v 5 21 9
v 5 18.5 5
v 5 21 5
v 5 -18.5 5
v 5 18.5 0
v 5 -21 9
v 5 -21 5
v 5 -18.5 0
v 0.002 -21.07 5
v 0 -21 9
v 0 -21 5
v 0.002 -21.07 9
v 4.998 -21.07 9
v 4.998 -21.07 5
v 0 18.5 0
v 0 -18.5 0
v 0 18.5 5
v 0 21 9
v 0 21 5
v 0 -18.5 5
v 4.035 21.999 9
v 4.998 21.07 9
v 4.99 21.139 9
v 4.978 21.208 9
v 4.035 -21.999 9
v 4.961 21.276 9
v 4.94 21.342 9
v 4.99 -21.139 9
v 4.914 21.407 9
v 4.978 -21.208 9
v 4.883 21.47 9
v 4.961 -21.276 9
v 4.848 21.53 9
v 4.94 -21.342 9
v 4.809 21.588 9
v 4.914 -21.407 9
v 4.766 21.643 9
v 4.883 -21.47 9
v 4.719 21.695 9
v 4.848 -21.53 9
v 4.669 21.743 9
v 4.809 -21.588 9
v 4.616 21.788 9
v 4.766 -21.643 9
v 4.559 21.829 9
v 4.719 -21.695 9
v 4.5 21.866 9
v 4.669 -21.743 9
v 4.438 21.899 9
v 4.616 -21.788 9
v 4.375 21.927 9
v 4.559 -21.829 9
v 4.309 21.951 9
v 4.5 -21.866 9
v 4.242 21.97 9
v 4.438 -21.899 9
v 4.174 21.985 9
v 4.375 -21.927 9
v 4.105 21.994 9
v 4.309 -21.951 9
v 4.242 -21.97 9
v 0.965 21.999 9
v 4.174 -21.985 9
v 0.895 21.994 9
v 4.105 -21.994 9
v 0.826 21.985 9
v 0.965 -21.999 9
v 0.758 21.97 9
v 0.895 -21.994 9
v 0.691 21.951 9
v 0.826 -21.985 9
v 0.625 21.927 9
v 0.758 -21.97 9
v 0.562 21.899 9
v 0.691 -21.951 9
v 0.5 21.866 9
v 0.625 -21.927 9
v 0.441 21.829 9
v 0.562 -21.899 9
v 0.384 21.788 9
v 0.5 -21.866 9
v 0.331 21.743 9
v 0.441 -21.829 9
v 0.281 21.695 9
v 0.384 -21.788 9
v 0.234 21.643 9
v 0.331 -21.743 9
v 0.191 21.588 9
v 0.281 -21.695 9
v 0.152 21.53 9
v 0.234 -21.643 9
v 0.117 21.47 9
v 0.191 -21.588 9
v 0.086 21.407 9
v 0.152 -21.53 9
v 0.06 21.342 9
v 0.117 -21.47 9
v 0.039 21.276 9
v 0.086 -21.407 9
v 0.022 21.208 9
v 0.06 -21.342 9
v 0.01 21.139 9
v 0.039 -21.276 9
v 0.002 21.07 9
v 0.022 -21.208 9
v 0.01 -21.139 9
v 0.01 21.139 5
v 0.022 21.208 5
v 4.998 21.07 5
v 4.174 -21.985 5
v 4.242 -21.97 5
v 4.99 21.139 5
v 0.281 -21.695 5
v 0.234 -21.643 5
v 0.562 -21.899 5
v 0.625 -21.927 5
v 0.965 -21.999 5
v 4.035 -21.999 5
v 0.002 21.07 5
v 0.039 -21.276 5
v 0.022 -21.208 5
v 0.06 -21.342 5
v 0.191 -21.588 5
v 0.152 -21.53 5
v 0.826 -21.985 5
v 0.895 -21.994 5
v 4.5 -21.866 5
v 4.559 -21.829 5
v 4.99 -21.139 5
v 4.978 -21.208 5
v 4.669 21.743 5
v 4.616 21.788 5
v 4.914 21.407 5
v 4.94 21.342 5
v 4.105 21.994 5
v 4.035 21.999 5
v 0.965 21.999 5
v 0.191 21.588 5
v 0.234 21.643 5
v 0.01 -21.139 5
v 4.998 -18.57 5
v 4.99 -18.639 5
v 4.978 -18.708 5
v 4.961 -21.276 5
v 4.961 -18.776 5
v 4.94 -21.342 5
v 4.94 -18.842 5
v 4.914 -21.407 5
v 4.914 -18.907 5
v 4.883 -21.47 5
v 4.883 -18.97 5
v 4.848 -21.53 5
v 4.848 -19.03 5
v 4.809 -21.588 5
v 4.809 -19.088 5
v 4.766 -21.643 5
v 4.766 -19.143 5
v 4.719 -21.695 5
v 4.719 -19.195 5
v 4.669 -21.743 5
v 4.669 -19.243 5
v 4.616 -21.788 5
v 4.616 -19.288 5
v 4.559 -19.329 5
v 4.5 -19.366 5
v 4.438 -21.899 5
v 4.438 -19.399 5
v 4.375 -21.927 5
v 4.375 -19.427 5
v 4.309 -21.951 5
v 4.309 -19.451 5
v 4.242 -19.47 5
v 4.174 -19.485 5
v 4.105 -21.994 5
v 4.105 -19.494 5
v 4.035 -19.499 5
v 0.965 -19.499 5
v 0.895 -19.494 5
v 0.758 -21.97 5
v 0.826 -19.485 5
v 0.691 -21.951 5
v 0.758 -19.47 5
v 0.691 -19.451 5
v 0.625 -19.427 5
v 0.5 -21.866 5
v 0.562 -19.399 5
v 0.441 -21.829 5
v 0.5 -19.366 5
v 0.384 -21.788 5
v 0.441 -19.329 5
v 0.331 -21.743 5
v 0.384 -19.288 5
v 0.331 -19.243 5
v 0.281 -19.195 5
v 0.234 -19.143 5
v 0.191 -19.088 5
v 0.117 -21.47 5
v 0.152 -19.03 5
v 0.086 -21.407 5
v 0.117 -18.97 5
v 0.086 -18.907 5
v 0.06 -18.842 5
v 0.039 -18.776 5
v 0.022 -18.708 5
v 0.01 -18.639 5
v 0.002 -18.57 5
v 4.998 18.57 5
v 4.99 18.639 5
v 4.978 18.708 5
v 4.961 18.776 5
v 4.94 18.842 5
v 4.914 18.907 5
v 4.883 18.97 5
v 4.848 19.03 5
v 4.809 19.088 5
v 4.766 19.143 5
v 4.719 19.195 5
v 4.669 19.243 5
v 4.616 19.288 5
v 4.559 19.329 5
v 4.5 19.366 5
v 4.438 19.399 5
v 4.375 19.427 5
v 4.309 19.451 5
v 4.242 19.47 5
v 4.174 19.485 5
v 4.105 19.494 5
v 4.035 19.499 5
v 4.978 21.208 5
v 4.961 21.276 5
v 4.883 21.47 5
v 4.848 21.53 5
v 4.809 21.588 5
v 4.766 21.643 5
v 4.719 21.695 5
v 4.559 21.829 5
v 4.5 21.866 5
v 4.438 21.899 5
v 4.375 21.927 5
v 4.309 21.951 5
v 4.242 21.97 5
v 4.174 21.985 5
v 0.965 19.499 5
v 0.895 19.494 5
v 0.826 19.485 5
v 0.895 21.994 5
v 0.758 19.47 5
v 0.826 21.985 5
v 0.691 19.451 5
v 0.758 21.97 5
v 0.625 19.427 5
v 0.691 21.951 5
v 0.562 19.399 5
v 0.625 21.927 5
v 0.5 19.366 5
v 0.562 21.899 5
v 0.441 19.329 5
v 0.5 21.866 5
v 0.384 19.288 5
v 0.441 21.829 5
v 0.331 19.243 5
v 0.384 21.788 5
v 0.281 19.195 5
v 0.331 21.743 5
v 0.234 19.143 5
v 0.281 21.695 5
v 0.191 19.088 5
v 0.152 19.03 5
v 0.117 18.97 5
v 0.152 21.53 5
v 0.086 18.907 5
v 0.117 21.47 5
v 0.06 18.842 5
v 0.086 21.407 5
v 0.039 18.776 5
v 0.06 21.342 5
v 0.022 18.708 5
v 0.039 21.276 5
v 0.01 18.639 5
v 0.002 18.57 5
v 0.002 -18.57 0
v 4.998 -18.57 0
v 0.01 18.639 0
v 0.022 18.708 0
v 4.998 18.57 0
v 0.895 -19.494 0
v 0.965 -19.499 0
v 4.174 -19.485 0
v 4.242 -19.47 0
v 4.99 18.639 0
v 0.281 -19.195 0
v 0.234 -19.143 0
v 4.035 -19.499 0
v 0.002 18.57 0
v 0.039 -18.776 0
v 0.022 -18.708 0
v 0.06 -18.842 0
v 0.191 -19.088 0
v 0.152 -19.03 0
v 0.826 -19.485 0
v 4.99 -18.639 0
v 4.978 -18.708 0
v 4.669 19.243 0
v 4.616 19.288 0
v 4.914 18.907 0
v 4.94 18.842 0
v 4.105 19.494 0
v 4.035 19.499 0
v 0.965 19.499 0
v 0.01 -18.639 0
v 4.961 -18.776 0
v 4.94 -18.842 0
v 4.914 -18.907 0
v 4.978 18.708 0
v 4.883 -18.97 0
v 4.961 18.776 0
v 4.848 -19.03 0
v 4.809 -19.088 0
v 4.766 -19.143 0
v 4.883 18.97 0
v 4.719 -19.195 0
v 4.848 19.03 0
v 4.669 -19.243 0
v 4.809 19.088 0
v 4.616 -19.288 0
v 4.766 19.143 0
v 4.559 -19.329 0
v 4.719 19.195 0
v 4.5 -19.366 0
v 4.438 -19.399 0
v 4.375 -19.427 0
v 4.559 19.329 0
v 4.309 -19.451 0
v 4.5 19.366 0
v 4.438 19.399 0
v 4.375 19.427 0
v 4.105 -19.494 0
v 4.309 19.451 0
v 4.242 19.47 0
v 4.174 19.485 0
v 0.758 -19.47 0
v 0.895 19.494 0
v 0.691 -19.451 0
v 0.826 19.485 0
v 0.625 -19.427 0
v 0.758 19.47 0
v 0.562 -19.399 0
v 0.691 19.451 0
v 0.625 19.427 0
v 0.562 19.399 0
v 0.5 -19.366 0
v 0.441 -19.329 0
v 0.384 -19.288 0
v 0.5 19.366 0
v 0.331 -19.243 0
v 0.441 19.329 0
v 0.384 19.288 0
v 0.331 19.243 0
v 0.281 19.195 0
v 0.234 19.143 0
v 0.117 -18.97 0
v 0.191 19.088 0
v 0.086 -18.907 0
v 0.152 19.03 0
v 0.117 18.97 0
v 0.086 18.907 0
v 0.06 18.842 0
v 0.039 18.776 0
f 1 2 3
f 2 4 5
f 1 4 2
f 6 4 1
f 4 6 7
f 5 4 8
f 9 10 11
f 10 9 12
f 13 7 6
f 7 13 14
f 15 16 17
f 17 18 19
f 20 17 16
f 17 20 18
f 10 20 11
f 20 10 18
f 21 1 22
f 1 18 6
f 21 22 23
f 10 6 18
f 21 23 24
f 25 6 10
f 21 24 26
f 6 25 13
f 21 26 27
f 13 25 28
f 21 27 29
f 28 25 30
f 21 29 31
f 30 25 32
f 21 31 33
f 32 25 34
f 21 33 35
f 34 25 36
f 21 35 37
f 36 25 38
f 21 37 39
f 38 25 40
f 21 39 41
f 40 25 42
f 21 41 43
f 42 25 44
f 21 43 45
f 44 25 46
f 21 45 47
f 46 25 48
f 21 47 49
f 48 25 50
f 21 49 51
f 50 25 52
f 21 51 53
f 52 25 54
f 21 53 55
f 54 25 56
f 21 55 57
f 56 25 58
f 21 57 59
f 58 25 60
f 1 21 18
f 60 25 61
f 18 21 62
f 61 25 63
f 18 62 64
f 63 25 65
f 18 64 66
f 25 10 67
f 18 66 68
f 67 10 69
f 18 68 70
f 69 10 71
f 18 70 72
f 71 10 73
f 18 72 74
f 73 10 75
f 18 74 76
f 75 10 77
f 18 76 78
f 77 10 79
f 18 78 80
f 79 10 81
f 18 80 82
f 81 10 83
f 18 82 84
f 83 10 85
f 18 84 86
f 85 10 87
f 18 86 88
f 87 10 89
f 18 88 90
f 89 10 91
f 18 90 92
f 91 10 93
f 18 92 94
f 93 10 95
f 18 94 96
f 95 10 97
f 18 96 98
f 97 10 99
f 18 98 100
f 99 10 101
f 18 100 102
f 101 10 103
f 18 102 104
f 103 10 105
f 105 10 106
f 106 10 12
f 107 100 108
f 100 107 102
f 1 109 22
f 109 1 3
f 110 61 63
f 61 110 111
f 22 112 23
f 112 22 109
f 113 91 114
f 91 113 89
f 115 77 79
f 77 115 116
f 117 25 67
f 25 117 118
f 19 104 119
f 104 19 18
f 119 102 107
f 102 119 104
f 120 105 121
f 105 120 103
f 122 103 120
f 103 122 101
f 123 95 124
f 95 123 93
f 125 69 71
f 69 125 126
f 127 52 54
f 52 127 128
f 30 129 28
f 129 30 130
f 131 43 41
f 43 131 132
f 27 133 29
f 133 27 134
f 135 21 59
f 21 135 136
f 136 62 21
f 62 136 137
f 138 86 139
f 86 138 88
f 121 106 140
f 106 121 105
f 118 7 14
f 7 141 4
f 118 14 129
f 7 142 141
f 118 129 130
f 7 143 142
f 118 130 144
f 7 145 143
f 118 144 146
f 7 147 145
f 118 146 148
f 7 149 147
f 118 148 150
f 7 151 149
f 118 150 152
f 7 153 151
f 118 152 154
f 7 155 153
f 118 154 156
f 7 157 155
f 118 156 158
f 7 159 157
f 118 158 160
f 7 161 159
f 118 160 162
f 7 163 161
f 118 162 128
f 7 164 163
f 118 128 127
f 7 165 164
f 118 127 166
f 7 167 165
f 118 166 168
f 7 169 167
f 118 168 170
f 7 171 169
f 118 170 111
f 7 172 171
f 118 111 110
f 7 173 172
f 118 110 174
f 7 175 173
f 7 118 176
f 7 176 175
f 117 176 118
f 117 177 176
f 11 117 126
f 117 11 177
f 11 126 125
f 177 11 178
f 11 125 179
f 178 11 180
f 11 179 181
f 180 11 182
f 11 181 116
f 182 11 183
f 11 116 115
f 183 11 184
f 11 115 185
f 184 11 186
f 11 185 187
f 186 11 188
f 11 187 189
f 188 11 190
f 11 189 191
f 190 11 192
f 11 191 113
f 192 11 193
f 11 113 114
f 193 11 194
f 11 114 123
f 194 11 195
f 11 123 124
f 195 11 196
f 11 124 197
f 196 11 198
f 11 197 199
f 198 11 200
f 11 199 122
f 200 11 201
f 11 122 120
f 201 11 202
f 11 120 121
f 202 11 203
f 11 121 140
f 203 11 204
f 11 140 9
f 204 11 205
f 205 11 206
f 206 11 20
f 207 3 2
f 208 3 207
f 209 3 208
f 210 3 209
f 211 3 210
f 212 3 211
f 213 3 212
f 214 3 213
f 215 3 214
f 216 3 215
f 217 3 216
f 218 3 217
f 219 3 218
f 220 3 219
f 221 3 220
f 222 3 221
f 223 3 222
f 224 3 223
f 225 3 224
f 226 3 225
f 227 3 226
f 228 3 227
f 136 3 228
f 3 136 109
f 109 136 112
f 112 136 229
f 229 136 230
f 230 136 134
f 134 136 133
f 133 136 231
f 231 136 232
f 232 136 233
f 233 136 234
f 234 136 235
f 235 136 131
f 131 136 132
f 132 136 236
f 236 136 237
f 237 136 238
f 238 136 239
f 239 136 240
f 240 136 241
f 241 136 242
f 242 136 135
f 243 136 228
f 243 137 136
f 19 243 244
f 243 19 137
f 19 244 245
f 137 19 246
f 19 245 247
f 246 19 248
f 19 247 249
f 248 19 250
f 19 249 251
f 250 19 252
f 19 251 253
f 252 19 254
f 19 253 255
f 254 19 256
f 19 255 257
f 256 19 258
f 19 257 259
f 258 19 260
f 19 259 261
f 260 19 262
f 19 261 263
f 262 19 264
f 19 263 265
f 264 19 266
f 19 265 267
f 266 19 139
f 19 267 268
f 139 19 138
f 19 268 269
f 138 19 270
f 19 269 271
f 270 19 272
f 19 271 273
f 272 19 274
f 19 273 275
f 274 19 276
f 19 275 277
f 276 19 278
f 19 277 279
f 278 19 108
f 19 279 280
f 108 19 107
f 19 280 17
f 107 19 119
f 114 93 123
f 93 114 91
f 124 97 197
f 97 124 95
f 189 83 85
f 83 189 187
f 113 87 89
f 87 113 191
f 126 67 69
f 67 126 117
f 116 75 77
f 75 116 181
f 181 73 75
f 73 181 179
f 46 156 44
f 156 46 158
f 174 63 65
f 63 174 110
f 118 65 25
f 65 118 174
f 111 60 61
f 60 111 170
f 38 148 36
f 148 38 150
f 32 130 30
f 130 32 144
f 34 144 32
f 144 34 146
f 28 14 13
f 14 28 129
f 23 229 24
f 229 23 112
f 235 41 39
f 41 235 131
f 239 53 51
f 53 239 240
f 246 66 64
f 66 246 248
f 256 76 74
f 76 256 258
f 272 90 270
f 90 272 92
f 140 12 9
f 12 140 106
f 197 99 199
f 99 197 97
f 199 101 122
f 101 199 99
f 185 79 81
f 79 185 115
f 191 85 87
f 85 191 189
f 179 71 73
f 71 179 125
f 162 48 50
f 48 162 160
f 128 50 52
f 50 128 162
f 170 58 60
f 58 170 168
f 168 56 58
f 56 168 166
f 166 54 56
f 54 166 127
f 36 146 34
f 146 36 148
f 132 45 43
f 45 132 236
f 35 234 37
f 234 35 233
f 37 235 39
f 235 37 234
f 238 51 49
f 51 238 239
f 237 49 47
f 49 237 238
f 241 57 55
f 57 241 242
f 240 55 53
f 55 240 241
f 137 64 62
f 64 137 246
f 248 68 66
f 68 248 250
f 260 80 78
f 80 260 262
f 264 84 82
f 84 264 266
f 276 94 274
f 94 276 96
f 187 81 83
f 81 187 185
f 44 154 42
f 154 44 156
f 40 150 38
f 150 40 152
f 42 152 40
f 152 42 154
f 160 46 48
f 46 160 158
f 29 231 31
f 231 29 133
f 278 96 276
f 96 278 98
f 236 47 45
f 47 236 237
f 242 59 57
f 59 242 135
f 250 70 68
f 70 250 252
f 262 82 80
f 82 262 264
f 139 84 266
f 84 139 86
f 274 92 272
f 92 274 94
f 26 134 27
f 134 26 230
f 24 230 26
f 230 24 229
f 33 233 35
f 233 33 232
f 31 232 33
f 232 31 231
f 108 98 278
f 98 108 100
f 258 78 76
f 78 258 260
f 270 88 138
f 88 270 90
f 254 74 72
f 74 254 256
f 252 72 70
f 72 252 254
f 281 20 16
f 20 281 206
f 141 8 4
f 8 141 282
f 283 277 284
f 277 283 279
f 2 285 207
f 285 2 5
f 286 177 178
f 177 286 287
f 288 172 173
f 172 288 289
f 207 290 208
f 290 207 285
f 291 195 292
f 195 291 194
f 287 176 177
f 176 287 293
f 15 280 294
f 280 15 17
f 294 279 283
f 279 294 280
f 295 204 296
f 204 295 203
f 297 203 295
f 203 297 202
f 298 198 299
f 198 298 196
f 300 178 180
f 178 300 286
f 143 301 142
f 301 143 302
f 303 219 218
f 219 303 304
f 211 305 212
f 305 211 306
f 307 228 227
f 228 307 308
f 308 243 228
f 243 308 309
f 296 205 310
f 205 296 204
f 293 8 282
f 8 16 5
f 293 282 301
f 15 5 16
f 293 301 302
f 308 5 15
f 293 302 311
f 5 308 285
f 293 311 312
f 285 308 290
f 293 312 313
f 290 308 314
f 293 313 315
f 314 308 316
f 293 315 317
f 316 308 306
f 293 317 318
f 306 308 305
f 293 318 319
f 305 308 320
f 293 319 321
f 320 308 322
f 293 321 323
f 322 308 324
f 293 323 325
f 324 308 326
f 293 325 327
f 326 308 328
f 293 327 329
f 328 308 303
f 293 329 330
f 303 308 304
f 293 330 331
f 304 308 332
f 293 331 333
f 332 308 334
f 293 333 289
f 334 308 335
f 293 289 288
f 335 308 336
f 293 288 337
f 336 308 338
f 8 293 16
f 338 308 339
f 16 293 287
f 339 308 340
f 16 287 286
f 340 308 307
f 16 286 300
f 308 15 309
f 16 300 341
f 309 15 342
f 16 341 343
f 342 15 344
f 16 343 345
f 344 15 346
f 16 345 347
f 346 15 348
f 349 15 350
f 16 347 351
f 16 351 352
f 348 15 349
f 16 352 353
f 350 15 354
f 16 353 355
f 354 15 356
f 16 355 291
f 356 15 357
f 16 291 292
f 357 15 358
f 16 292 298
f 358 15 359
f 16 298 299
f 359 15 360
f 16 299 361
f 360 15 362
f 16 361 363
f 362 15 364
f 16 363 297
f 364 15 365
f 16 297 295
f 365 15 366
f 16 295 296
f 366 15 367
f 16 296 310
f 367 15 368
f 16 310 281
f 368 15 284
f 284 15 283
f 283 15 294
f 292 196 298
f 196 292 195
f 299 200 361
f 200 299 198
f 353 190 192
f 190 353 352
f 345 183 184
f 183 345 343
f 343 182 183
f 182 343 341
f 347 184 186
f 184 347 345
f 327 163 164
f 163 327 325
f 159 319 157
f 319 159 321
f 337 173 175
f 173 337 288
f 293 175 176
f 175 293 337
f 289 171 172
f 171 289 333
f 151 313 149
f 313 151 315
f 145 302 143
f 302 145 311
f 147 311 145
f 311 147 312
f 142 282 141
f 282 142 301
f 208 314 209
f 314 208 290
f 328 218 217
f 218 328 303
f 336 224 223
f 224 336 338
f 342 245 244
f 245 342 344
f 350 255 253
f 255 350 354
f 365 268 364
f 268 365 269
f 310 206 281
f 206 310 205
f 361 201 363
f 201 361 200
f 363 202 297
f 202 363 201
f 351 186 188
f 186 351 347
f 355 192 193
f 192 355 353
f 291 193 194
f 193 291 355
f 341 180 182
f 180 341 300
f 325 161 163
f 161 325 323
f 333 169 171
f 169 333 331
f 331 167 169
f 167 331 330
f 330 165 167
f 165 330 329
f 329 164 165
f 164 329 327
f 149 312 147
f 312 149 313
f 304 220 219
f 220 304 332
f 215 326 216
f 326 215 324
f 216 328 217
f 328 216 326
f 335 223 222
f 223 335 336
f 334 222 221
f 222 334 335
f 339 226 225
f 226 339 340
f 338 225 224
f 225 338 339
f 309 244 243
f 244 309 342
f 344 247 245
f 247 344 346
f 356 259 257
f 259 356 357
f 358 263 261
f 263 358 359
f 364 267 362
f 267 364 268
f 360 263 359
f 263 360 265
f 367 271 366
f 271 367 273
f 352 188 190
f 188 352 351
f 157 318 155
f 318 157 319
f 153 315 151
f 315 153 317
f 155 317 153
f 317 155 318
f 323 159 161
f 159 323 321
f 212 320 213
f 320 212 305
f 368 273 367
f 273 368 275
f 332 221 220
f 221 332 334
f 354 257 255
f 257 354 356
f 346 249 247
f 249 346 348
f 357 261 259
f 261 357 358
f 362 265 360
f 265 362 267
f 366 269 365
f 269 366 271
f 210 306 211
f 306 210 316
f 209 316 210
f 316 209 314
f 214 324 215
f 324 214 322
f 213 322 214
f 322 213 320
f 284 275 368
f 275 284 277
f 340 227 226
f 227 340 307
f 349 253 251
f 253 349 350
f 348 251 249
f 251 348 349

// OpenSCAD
$fn=90;

module top() {
     translate([1,-21,5]) {
         minkowski() {
            cube([3, 42, 3], center=false);
            cylinder(1);
         }
     }      
}

module bottom() {
     translate([1,-18.5,0]) {
         minkowski() {
            cube([3, 37, 5], center=false);
            cylinder(1);
         }
     }      
}

module bracket() {
    union() {
        top();
        bottom();
    }
}

bracket();
